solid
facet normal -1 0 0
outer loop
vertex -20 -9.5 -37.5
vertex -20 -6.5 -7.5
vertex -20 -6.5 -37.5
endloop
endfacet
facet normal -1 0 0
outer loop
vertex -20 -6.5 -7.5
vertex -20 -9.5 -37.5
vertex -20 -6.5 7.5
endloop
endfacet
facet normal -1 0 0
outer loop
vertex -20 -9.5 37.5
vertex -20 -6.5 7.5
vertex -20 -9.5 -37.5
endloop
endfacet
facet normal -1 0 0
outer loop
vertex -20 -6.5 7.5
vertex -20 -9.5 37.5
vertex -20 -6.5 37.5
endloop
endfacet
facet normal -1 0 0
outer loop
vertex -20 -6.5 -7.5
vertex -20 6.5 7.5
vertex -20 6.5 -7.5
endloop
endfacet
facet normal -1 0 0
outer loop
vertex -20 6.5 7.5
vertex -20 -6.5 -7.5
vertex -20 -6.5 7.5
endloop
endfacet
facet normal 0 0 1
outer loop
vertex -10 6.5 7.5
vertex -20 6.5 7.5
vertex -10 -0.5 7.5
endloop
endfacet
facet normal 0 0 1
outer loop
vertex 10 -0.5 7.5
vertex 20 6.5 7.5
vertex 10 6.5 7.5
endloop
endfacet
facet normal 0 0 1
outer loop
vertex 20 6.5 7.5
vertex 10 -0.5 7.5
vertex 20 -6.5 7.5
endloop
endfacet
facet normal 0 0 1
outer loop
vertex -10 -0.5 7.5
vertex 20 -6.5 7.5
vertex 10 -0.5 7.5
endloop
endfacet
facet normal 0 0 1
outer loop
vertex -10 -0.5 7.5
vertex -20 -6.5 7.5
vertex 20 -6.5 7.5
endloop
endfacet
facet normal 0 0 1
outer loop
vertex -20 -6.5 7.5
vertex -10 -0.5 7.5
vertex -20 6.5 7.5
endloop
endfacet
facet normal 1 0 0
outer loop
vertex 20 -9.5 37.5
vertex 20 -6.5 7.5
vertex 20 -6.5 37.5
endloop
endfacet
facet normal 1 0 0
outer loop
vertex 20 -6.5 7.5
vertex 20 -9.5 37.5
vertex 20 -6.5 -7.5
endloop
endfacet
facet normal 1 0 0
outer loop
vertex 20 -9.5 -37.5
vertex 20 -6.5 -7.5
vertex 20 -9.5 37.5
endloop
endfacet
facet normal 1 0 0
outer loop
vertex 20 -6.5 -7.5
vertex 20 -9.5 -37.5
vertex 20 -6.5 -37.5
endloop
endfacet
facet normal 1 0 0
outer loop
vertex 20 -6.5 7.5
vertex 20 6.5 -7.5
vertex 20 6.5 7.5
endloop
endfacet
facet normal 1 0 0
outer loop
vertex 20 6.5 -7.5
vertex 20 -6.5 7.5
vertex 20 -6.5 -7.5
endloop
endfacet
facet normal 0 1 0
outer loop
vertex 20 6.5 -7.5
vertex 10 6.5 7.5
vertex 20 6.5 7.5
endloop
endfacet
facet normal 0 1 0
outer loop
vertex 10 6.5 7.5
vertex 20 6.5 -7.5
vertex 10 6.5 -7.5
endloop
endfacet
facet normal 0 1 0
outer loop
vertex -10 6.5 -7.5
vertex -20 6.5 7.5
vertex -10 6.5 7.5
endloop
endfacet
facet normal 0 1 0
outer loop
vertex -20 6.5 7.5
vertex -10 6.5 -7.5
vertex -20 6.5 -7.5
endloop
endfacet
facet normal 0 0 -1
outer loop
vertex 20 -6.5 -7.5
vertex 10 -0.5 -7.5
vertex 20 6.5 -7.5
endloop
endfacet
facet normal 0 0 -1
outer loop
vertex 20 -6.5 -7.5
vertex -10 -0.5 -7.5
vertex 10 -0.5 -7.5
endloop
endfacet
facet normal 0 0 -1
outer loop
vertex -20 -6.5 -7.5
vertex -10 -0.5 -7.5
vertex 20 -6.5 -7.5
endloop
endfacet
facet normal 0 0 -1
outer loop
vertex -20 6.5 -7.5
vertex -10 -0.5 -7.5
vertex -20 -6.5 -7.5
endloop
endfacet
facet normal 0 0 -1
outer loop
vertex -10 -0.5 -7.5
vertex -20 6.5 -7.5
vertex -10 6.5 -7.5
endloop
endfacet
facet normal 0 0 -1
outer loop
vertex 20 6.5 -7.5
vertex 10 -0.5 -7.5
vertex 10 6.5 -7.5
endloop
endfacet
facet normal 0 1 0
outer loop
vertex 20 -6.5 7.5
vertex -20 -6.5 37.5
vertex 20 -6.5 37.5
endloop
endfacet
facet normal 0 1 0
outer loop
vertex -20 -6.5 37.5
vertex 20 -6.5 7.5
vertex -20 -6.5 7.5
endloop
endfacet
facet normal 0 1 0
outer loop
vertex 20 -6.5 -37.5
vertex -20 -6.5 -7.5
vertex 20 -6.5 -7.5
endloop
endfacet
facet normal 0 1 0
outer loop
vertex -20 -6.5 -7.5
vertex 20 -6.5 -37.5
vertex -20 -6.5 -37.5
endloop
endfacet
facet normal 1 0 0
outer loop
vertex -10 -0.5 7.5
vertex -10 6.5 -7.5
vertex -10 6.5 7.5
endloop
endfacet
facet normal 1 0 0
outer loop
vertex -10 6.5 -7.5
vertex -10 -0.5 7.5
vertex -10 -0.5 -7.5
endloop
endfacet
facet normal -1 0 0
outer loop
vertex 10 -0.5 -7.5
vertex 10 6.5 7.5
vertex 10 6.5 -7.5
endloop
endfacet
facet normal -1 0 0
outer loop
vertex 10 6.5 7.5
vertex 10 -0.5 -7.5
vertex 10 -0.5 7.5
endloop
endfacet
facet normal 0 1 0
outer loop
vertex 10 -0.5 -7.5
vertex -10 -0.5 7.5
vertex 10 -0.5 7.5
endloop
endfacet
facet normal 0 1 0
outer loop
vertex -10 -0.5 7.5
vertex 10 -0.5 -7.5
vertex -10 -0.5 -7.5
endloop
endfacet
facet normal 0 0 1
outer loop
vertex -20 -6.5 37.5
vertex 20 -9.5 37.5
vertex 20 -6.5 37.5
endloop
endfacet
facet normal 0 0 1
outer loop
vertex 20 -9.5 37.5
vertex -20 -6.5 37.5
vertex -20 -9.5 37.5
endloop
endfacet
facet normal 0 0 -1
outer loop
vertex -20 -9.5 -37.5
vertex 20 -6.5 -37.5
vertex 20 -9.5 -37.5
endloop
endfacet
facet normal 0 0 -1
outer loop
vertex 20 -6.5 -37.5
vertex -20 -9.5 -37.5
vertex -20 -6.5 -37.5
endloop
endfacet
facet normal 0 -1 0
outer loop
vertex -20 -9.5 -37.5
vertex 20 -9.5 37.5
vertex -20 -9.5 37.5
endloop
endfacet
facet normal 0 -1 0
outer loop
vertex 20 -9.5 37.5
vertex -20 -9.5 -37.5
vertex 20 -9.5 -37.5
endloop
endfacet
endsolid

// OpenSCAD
union(){
difference(){
color("red")
cube([40, 13, 15], center = true);
translate([0, 6.5, 0])
cube([20, 14, 16], center = true);}

color("blue")
translate([0, -8, 0])
cube([40, 3, 75], center = true);
}
